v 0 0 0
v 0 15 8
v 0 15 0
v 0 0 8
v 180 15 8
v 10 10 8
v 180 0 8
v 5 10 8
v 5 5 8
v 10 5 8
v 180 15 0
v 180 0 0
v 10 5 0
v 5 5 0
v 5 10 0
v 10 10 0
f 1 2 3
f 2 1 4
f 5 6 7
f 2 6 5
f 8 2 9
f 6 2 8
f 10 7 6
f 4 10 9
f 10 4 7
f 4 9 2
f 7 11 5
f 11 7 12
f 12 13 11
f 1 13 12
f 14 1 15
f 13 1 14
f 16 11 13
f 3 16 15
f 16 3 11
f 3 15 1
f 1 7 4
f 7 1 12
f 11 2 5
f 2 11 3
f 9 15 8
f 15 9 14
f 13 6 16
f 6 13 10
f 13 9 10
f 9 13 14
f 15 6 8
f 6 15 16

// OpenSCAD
difference() {
	cube([180,15,8]);

	translate([5,5,-1])
	cube([5,5,16]);
}
